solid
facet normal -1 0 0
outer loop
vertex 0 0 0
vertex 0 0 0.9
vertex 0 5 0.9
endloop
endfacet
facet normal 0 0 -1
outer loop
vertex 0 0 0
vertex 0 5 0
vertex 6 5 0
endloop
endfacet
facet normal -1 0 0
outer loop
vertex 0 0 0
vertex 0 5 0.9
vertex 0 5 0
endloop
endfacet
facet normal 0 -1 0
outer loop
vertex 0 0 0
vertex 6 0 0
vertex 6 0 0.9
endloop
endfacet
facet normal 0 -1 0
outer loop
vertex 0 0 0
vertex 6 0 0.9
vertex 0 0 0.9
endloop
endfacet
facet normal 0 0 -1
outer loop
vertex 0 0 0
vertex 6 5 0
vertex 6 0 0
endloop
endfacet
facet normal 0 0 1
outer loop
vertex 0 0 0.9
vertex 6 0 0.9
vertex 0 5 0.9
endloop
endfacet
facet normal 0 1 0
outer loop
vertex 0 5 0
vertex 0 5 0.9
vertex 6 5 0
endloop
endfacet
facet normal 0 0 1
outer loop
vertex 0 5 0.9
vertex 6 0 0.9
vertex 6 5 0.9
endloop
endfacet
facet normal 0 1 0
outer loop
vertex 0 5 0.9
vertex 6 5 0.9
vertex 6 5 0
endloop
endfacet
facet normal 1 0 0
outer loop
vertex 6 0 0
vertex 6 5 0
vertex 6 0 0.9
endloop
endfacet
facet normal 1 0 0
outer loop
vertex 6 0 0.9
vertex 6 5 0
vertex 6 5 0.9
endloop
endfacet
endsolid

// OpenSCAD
/* Warning, this is a very basic generator with a lot of approximation 
input data : [VDFN, K4A, 6x5x0.9mm, 11, , A, C04-01197A]
generated by com.zoubworld.electronics.cad.model3d.Basic
Date : Sun Feb 15 10:50:49 CET 2026
*/

//body
color("black")
translate([0,0,0])
cube([6.0,5.0,0.9], center=false);
